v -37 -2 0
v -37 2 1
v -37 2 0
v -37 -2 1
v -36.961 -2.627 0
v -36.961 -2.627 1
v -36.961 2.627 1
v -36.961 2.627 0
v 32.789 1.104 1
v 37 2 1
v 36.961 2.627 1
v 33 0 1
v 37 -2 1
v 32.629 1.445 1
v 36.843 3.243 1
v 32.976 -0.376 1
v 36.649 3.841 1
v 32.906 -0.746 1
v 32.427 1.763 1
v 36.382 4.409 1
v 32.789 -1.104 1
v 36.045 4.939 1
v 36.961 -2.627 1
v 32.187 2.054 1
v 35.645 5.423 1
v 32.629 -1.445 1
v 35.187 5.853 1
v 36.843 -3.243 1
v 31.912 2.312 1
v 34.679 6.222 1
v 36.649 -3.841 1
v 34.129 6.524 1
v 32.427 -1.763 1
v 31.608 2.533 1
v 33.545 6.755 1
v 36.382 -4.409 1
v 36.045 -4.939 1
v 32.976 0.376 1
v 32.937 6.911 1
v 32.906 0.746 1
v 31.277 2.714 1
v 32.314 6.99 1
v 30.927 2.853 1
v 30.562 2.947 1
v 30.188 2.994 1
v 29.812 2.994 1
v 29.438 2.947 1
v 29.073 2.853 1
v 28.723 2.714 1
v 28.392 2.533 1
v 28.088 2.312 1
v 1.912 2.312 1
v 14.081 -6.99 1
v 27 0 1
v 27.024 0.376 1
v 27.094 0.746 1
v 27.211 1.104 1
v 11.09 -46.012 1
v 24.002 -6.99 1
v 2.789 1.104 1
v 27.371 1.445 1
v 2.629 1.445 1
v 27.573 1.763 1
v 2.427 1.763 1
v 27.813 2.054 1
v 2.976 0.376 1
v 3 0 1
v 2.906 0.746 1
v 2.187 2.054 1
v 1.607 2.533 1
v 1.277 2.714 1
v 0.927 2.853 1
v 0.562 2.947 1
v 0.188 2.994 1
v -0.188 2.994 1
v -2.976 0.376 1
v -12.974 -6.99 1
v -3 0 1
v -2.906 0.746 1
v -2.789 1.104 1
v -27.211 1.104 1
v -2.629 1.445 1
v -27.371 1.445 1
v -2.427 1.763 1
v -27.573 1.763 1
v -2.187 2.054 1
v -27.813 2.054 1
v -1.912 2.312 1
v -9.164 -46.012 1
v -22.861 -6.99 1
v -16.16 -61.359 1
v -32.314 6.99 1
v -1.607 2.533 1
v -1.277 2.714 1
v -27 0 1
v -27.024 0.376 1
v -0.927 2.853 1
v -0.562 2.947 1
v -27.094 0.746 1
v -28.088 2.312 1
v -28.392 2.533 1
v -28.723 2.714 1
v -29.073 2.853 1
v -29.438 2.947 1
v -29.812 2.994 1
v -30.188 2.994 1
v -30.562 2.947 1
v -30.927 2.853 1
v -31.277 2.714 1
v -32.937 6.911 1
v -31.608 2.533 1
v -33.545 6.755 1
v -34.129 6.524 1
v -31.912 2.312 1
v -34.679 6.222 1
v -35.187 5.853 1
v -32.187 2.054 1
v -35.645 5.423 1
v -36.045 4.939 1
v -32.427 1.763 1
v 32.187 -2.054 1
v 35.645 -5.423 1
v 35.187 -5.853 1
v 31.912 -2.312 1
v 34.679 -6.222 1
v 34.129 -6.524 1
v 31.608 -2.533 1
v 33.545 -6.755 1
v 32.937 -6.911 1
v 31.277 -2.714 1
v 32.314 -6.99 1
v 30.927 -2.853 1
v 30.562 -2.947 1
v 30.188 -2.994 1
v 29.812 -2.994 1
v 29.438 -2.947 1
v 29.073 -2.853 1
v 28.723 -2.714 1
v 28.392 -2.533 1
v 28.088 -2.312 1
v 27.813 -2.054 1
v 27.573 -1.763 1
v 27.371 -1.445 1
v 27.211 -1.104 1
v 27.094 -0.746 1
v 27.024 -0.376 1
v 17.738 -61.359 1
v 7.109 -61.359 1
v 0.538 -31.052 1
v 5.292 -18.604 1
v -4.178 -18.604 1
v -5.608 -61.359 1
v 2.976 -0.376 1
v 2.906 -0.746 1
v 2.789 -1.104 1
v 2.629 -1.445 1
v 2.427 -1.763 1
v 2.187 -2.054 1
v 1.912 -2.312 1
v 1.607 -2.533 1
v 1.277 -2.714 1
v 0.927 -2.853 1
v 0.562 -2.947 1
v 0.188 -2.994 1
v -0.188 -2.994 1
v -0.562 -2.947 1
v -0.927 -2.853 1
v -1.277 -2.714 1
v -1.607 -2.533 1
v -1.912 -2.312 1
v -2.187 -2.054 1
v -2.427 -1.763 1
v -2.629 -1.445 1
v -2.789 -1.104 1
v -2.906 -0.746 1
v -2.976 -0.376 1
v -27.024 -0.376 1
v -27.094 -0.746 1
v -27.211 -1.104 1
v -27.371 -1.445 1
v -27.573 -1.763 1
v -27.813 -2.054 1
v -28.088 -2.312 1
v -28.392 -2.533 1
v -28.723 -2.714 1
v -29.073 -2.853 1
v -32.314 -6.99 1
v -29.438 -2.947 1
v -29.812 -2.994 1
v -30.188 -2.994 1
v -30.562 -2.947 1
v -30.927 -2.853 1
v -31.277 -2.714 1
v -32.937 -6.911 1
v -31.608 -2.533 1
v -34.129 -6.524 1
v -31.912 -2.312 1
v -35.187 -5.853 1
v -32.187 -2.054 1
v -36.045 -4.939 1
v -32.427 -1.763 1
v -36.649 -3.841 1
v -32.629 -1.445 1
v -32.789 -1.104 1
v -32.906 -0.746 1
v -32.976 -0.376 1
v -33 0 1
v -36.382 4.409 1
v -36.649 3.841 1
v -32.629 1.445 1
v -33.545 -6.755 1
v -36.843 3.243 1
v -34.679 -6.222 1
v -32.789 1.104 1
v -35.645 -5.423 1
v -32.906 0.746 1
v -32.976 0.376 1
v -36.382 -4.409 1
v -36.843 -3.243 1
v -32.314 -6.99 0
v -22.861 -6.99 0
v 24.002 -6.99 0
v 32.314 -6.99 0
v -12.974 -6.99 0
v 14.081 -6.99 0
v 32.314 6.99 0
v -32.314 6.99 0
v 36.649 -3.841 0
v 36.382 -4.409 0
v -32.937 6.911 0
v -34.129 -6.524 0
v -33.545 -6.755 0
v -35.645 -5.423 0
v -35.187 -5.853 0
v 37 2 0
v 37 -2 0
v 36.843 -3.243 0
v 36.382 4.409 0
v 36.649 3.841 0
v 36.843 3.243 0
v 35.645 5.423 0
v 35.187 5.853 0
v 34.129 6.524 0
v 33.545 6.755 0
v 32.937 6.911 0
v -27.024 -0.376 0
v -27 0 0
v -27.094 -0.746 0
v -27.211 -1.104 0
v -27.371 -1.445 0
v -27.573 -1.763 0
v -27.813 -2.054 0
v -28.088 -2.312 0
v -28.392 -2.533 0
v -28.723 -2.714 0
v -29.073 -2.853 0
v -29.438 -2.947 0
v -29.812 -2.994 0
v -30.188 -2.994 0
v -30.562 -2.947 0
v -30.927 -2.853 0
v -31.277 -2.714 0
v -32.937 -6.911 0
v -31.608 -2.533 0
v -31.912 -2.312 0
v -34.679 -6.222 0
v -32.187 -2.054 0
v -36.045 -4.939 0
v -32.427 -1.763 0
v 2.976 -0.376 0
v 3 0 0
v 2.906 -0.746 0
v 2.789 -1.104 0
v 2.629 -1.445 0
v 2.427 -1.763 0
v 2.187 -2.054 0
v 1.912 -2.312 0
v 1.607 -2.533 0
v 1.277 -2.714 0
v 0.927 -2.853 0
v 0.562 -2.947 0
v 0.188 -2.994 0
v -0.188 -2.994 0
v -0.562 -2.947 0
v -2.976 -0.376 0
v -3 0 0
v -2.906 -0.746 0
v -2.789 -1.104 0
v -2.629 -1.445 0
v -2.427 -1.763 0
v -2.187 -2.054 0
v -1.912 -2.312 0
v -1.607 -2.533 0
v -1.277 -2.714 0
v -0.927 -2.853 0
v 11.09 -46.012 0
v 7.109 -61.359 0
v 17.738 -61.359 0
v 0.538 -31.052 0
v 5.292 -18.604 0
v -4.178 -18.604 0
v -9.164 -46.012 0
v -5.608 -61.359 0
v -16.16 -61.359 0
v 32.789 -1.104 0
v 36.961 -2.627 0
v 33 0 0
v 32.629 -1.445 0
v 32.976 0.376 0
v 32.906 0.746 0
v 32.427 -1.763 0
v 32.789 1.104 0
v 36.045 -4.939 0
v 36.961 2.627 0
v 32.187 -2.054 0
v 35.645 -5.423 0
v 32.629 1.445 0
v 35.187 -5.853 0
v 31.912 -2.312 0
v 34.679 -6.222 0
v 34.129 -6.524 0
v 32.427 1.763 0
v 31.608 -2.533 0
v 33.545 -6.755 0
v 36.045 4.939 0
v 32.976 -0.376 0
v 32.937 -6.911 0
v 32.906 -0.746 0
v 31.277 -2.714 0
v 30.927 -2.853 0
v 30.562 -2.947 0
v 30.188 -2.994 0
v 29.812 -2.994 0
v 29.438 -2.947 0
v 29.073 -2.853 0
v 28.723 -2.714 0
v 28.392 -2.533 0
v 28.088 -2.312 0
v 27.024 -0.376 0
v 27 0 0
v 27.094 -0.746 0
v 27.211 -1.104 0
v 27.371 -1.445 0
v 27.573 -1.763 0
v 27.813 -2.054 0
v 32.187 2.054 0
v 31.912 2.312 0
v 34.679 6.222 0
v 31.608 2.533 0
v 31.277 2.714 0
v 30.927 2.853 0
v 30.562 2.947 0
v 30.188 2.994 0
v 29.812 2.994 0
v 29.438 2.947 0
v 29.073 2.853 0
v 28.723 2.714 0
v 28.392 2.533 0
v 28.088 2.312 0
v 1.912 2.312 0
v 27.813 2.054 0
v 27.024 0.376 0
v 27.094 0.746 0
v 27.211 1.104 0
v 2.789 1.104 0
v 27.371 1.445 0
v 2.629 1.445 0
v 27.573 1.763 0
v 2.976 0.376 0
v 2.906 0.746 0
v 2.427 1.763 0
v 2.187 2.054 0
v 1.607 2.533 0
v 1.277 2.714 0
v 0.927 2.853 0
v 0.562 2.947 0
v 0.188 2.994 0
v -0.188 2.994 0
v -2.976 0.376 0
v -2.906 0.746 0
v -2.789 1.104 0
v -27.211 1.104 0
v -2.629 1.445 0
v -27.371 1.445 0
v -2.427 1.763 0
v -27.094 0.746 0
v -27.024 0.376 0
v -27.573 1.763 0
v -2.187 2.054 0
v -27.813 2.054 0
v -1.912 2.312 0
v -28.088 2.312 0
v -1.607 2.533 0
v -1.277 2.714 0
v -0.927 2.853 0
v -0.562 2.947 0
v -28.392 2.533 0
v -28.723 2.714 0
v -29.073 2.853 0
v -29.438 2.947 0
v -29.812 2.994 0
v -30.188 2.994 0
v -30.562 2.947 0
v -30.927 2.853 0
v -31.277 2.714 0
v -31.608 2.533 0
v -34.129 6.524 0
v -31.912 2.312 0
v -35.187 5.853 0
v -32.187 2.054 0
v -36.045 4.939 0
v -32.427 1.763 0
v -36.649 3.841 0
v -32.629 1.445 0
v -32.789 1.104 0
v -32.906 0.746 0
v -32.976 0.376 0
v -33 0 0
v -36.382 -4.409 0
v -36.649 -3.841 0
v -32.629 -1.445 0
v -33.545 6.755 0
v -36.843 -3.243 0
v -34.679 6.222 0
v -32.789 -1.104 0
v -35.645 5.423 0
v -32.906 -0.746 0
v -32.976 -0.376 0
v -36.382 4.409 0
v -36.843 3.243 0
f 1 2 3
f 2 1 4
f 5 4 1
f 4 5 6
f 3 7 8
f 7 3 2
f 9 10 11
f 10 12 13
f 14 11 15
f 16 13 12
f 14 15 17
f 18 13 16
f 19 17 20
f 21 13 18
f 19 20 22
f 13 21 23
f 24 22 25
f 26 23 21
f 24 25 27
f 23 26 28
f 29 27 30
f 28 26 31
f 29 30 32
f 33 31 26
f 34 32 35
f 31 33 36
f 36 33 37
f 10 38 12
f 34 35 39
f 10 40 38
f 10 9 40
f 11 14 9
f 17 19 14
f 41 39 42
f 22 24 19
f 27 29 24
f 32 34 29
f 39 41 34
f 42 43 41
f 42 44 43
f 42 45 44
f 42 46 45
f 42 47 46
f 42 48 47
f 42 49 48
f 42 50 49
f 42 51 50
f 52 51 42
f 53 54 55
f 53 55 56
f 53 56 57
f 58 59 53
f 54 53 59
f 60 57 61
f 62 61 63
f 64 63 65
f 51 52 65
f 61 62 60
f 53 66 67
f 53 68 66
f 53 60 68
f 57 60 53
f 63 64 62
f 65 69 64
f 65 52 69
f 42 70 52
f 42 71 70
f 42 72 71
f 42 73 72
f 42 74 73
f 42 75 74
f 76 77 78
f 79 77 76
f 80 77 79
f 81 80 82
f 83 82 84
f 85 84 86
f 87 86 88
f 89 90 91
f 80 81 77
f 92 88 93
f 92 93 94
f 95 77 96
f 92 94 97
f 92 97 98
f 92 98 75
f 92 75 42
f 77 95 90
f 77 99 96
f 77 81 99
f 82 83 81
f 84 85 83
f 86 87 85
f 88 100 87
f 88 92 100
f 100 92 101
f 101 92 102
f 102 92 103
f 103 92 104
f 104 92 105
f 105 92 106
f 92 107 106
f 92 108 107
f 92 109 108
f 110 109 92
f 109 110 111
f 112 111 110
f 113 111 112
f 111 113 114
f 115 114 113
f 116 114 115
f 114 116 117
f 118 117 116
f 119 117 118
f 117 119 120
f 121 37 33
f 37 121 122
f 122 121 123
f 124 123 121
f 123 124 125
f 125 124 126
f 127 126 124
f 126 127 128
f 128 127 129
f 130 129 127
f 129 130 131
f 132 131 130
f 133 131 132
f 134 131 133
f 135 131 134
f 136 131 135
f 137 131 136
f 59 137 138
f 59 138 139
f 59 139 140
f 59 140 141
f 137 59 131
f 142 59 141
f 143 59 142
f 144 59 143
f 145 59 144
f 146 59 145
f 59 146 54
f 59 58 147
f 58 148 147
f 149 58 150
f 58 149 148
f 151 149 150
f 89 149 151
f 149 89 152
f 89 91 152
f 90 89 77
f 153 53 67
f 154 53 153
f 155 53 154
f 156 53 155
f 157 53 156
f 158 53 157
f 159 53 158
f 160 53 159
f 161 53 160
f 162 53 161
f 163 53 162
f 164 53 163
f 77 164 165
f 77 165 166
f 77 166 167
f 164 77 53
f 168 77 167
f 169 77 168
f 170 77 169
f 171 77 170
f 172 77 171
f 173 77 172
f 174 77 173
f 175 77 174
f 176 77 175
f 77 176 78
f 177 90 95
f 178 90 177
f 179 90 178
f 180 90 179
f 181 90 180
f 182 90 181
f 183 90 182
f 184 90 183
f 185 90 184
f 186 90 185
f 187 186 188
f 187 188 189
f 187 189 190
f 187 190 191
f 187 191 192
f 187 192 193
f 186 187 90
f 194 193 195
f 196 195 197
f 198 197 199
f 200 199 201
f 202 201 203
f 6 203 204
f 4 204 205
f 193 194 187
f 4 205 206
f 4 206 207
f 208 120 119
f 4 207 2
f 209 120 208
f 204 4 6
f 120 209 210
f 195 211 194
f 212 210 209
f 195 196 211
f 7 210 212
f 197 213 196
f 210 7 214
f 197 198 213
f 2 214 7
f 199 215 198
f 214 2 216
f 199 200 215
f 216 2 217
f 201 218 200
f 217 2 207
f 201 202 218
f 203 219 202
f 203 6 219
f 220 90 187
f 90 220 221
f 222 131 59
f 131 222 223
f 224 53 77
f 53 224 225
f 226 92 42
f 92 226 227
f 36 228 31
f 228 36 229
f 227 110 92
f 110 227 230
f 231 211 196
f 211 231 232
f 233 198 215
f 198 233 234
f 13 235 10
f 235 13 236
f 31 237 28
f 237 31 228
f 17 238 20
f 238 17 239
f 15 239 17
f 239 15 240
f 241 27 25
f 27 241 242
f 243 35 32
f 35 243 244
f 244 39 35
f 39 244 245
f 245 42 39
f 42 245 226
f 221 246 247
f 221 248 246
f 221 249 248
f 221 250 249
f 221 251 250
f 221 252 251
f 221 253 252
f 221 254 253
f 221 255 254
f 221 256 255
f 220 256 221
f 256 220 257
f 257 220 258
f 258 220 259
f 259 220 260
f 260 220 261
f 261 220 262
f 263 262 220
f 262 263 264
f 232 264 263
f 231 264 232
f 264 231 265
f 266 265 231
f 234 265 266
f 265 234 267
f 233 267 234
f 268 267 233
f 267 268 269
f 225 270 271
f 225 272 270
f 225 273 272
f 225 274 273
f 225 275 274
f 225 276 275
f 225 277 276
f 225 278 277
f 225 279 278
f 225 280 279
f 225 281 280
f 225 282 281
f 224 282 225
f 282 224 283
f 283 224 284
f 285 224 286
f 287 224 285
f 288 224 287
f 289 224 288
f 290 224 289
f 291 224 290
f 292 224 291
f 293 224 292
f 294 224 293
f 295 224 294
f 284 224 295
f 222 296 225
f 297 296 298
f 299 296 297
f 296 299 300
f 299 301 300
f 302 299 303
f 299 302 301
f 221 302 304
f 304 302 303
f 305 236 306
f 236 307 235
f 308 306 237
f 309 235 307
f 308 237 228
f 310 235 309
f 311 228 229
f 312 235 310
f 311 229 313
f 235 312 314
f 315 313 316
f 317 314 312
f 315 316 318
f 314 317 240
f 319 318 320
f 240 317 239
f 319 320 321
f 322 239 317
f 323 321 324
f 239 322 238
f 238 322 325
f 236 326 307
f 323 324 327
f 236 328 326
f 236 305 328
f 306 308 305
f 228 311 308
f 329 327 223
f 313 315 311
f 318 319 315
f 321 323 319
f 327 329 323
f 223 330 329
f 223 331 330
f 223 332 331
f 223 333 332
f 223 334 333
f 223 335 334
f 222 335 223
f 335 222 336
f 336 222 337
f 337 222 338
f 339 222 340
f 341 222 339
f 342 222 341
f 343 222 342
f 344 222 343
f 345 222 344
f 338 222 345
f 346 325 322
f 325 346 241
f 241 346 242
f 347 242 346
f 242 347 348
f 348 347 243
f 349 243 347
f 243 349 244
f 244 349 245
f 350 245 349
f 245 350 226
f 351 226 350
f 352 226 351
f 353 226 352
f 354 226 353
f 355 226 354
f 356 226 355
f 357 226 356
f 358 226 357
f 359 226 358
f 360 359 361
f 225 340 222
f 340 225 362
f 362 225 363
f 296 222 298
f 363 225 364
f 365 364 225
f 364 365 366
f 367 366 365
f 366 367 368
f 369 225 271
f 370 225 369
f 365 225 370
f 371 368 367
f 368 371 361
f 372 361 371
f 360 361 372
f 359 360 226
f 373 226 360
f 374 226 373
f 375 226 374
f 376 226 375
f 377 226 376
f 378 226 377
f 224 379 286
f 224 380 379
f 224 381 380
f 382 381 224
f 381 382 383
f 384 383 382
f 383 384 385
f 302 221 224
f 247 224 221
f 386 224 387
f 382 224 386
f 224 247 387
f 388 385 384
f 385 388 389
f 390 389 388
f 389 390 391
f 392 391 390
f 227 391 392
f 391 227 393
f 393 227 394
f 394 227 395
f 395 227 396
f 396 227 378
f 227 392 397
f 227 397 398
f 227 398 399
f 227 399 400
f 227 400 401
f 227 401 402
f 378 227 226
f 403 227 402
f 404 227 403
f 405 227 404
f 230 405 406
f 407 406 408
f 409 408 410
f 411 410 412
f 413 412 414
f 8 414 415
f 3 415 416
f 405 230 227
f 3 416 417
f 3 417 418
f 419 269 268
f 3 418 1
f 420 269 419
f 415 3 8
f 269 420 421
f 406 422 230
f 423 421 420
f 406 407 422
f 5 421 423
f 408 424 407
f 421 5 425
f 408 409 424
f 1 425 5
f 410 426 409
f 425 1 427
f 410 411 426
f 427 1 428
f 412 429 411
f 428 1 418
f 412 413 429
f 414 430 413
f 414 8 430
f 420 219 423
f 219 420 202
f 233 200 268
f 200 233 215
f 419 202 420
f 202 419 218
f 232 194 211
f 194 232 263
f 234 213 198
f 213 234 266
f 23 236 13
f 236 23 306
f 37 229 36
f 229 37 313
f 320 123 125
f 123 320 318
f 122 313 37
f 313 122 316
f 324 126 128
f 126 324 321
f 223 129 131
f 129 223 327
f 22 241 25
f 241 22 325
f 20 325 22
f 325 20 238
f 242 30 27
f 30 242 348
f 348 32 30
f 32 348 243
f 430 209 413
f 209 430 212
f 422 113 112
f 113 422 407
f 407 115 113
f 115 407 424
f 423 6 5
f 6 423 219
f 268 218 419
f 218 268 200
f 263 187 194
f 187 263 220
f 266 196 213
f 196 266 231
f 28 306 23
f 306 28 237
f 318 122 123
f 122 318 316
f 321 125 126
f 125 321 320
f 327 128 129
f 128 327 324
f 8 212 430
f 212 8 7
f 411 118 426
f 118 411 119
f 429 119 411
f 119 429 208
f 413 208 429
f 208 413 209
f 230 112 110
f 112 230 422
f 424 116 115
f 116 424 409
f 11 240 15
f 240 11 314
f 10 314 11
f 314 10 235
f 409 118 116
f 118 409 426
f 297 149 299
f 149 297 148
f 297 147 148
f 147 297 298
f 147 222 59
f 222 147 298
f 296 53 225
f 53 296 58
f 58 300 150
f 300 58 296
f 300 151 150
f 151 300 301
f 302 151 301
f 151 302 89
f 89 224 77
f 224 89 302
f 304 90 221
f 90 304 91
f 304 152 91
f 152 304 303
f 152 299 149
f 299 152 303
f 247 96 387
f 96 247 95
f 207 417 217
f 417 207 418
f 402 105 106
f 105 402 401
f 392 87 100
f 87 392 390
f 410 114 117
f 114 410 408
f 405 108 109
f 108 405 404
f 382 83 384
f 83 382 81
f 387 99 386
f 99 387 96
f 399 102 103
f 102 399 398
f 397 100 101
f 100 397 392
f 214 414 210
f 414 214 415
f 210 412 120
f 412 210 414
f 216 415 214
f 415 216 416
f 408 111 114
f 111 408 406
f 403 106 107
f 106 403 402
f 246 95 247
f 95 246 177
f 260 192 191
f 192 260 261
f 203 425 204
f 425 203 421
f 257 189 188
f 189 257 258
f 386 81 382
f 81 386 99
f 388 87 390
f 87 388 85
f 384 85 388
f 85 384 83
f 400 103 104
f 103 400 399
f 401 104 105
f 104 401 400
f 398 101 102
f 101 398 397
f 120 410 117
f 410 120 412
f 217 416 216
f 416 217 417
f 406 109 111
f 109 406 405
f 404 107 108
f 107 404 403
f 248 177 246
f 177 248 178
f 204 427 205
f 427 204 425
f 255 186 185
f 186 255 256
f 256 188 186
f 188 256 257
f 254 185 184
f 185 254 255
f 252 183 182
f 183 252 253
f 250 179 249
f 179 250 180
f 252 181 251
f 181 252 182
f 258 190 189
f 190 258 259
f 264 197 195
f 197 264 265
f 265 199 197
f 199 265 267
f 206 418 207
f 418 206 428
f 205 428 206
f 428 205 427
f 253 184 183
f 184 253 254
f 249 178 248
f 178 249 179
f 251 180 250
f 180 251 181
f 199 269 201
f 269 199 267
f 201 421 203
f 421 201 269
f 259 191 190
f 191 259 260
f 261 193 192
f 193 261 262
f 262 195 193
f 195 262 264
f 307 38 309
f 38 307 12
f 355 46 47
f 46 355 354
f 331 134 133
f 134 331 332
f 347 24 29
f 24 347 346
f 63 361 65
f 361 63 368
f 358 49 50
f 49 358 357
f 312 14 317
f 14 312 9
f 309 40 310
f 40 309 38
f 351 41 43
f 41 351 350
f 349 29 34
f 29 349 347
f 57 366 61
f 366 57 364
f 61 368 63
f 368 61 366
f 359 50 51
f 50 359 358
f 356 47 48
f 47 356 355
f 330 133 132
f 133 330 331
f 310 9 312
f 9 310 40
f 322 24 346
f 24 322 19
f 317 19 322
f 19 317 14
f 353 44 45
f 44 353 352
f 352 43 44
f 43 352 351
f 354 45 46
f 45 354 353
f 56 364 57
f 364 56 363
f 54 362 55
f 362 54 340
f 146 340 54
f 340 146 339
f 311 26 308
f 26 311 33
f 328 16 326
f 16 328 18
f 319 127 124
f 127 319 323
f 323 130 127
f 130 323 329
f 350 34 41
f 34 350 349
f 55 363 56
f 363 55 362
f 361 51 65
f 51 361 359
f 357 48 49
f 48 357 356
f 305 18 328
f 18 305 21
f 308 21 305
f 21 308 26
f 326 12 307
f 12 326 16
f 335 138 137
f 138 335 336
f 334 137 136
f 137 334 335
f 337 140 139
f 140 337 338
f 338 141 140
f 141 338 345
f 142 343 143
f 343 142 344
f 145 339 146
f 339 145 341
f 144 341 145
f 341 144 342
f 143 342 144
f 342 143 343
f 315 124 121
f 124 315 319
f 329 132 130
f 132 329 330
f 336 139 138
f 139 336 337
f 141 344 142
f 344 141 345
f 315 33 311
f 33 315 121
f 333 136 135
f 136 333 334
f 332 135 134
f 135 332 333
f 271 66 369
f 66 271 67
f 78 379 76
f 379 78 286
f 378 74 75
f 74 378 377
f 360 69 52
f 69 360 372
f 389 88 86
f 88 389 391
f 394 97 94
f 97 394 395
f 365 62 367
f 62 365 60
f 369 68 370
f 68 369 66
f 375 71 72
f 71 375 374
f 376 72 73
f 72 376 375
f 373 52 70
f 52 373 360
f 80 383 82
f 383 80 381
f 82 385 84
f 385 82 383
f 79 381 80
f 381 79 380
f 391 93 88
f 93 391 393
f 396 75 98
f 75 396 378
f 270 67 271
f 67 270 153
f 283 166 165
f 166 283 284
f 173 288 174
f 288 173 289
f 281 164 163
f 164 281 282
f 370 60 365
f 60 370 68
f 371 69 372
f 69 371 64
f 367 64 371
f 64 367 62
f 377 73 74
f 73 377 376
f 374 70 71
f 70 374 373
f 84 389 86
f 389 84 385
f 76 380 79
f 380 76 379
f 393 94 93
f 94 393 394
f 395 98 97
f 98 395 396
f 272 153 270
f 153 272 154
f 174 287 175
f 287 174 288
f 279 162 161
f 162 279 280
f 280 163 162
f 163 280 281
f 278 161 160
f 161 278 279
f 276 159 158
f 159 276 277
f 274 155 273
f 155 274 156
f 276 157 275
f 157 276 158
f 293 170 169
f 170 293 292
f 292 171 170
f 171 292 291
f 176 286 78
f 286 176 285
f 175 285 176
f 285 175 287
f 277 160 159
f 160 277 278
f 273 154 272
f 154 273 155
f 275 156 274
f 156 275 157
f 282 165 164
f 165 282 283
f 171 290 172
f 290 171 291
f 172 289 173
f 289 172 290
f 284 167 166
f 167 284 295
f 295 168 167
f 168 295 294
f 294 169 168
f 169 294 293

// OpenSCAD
$fn = 50;


difference() {
	union() {
		translate(v = [0, 0, 0]) {
			rotate(a = [0, 0, 0]) {
				hull() {
					translate(v = [-32.0000000000, 2.0000000000, 0]) {
						rotate(a = [0, 0, 0]) {
							translate(v = [0, 0, 0]) {
								rotate(a = [0, 0, 0]) {
									cylinder(h = 1, r = 5);
								}
							}
						}
					}
					translate(v = [32.0000000000, 2.0000000000, 0]) {
						rotate(a = [0, 0, 0]) {
							translate(v = [0, 0, 0]) {
								rotate(a = [0, 0, 0]) {
									cylinder(h = 1, r = 5);
								}
							}
						}
					}
					translate(v = [-32.0000000000, -2.0000000000, 0]) {
						rotate(a = [0, 0, 0]) {
							translate(v = [0, 0, 0]) {
								rotate(a = [0, 0, 0]) {
									cylinder(h = 1, r = 5);
								}
							}
						}
					}
					translate(v = [32.0000000000, -2.0000000000, 0]) {
						rotate(a = [0, 0, 0]) {
							translate(v = [0, 0, 0]) {
								rotate(a = [0, 0, 0]) {
									cylinder(h = 1, r = 5);
								}
							}
						}
					}
				}
			}
		}
		translate(v = [0, -5, 0]) {
			rotate(a = [0, 0, 0]) {
				linear_extrude(height = 1) {
					text(font = "DejaVu Sans Mono:style=Bold", halign = "center", size = 57.0000000000, text = "W", valign = "top");
				}
			}
		}
	}
	union() {
		translate(v = [-30.0000000000, 0.0000000000, -125.0000000000]) {
			rotate(a = [0, 0, 0]) {
				cylinder(h = 250, r = 3.0000000000);
			}
		}
		translate(v = [30.0000000000, 0.0000000000, -125.0000000000]) {
			rotate(a = [0, 0, 0]) {
				cylinder(h = 250, r = 3.0000000000);
			}
		}
		translate(v = [30.0000000000, 0.0000000000, -125.0000000000]) {
			rotate(a = [0, 0, 0]) {
				cylinder(h = 250, r = 3.0000000000);
			}
		}
		translate(v = [0, 0, -125.0000000000]) {
			rotate(a = [0, 0, 0]) {
				cylinder(h = 250, r = 3.0000000000);
			}
		}
	}
}
